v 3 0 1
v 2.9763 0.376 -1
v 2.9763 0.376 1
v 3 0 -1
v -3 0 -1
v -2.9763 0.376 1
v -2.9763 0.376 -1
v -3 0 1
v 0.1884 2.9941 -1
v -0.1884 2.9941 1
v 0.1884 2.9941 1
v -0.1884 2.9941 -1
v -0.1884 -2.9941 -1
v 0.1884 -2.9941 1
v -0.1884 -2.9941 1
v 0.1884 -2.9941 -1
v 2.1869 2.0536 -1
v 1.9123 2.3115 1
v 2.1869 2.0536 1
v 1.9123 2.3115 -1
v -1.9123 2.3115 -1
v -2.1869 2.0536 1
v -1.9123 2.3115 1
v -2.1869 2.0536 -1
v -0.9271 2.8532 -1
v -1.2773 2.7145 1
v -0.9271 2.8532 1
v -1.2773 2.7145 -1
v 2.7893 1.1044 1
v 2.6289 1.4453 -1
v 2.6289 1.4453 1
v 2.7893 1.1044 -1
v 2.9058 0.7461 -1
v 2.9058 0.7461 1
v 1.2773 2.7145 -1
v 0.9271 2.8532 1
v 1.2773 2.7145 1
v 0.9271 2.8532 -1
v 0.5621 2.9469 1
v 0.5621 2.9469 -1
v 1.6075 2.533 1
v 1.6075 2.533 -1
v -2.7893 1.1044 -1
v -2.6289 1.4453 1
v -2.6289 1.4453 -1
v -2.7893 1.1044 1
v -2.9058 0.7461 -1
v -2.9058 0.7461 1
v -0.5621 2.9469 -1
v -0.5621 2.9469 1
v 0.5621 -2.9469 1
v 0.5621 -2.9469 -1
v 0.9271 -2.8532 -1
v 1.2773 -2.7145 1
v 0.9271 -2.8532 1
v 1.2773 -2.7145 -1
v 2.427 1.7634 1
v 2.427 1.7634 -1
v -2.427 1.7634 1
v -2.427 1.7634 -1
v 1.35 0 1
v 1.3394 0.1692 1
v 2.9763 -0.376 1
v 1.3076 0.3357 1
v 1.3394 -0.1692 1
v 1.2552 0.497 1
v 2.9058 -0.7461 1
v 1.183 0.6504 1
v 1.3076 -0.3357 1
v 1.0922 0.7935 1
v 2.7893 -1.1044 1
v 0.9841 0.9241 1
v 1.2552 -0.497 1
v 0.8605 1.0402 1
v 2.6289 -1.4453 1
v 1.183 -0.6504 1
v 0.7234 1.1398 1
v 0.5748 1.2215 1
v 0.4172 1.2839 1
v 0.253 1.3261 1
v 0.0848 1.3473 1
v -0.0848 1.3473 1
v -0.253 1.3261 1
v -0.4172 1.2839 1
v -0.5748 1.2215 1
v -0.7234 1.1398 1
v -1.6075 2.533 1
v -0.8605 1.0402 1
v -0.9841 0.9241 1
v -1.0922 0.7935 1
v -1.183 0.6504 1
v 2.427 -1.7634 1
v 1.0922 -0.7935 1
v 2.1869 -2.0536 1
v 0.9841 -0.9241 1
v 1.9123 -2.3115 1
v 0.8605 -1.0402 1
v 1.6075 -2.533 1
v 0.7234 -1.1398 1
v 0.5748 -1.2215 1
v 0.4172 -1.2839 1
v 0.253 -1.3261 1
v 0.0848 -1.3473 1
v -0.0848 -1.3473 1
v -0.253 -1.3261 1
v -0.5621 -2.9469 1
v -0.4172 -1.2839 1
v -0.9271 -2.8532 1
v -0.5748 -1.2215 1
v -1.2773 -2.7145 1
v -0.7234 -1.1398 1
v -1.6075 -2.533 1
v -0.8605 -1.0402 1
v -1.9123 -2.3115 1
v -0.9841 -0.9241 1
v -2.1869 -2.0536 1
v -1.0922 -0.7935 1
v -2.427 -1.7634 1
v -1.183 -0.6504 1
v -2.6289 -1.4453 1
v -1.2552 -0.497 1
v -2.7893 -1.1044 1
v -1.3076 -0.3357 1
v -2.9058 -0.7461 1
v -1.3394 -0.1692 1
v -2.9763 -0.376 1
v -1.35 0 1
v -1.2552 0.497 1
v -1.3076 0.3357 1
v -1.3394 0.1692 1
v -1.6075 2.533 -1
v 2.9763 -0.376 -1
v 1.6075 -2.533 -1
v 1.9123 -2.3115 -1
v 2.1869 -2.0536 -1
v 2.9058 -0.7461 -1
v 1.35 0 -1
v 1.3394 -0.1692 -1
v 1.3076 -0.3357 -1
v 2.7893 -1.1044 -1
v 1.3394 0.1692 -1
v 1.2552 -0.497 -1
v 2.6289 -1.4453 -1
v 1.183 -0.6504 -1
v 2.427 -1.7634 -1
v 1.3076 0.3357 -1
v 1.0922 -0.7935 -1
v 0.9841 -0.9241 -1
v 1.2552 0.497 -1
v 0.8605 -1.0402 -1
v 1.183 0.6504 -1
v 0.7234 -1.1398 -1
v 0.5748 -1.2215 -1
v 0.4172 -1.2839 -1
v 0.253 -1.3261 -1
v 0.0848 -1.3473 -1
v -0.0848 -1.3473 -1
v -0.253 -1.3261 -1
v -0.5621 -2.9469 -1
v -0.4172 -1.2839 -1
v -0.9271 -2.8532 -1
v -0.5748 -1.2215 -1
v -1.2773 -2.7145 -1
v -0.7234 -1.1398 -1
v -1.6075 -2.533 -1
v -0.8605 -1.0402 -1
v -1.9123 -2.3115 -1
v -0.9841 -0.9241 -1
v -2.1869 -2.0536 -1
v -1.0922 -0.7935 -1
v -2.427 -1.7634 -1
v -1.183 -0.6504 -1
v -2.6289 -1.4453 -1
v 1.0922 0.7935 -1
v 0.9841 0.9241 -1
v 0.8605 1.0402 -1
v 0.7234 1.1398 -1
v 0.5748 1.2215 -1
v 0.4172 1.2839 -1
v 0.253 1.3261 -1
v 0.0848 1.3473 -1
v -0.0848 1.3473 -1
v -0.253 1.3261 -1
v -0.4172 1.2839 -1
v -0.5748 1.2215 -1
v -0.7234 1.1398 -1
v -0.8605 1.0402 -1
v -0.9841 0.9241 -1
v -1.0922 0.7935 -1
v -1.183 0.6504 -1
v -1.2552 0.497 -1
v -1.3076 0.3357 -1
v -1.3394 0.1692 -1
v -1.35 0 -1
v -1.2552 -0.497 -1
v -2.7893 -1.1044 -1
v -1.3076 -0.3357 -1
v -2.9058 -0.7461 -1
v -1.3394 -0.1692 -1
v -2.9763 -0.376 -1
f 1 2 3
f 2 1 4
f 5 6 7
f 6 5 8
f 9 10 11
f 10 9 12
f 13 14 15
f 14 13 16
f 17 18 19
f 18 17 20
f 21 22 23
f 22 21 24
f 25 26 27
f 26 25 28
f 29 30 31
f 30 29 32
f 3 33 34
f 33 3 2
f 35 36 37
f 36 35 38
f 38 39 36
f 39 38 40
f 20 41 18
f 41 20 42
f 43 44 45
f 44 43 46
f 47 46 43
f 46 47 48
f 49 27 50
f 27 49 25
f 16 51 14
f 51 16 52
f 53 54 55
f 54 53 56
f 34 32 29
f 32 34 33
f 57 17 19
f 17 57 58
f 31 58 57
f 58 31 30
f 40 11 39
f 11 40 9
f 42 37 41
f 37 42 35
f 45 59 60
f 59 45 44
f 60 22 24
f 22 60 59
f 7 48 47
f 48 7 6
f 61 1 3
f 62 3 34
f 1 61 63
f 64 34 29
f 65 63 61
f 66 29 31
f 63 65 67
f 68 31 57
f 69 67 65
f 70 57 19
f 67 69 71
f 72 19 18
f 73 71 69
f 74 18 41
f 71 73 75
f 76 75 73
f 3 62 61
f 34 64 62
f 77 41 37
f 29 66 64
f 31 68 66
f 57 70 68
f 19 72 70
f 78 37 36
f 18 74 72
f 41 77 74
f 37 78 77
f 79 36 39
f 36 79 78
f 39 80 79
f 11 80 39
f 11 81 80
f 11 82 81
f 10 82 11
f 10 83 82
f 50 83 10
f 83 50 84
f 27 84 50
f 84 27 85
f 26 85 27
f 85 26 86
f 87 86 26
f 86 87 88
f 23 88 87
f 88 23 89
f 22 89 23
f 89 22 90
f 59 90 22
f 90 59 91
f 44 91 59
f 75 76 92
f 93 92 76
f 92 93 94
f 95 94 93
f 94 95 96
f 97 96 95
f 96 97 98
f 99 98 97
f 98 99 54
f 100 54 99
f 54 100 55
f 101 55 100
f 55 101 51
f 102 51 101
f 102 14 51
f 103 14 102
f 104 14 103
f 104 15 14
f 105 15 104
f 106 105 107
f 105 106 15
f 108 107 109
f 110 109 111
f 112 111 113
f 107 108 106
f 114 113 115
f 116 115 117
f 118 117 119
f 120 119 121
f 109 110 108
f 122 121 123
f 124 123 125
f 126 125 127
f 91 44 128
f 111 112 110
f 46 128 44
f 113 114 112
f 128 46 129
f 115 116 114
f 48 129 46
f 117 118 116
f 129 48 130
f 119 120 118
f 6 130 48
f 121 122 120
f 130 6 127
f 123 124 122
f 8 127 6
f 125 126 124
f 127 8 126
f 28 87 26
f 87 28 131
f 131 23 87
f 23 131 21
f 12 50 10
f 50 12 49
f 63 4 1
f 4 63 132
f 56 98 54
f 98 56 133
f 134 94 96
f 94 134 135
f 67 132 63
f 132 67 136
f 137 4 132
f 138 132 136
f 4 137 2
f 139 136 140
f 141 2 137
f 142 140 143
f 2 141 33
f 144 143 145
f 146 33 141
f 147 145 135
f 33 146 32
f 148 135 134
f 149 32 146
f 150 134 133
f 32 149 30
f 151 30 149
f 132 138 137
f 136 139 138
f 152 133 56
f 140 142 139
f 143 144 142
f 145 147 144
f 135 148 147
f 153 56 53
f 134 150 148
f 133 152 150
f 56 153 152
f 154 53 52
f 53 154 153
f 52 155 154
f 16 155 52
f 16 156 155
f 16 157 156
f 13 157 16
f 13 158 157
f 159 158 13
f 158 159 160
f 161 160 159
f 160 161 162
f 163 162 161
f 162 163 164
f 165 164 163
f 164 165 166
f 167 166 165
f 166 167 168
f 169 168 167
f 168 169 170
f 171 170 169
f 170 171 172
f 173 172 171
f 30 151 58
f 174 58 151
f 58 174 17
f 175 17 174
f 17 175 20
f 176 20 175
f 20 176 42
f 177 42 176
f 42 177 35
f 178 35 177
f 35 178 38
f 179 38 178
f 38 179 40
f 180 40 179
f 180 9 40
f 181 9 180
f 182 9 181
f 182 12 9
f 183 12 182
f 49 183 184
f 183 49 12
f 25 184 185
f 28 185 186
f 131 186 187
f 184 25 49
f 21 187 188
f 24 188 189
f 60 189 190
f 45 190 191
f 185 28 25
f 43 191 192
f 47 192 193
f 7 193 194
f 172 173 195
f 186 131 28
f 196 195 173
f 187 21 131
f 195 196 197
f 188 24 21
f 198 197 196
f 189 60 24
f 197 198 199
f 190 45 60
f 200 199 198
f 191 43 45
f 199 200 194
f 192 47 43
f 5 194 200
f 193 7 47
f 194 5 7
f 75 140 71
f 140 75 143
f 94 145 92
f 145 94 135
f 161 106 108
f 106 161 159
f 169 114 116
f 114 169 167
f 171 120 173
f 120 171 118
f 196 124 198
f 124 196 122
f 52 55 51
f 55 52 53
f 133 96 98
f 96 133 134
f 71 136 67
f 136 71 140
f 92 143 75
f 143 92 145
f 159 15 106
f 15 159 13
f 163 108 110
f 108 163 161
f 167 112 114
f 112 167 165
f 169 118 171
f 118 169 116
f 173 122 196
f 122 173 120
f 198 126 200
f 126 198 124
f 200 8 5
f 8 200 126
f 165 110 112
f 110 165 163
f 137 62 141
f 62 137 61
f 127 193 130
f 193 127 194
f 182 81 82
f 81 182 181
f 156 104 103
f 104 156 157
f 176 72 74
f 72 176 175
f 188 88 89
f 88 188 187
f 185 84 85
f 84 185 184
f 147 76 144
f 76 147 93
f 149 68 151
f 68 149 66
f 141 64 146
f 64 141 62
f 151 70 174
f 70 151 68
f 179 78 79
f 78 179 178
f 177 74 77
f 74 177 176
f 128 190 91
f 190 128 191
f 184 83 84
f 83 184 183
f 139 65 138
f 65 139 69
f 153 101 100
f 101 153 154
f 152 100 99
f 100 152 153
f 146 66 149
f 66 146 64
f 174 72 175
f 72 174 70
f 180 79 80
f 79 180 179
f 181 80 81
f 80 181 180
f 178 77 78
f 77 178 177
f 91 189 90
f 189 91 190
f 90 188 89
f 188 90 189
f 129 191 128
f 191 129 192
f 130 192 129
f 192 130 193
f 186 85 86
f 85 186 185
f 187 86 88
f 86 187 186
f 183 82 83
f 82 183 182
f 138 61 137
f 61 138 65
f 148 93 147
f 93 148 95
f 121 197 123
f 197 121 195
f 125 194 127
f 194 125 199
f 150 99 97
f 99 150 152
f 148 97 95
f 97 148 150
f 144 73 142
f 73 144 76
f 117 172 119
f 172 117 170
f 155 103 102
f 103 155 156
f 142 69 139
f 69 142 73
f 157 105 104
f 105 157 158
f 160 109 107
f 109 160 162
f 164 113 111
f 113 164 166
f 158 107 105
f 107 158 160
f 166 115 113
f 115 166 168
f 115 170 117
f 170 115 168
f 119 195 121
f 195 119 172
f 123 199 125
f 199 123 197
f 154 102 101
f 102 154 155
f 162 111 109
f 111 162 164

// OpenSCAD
$fn = 50;


difference() {
	union() {
		translate(v = [0, 0, -1.0000000000]) {
			cylinder(h = 2, r = 3.0000000000);
		}
	}
	union() {
		translate(v = [0, 0, -100.0000000000]) {
			cylinder(h = 200, r = 1.3500000000);
		}
	}
}
